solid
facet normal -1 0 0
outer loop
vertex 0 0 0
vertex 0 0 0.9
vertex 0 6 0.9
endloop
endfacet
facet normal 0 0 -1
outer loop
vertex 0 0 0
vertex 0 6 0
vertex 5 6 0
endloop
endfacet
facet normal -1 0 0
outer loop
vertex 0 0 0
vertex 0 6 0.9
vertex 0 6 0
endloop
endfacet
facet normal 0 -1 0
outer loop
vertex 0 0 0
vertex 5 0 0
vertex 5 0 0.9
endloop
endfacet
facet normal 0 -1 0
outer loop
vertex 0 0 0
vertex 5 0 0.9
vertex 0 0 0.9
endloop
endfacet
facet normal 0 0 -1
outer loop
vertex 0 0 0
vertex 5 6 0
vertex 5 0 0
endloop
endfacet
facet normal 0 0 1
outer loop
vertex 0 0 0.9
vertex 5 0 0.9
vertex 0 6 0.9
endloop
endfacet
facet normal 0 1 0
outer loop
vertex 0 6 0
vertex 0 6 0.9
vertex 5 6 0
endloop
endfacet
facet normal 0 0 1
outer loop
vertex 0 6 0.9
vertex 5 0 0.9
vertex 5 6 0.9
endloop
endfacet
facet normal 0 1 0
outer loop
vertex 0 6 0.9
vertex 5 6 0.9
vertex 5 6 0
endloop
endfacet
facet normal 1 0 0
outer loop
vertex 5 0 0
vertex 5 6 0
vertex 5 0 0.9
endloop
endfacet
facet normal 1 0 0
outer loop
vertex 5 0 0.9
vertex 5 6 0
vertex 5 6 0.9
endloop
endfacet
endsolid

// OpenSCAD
/* Warning, this is a very basic generator with a lot of approximation 
input data : [VQFN, PPA, 5x6x0.9mm, 38, , A, C04-01041A]
generated by com.zoubworld.electronics.cad.model3d.Basic
Date : Sun Feb 15 10:50:49 CET 2026
*/

//body
color("black")
translate([0,0,0])
cube([5.0,6.0,0.9], center=false);
